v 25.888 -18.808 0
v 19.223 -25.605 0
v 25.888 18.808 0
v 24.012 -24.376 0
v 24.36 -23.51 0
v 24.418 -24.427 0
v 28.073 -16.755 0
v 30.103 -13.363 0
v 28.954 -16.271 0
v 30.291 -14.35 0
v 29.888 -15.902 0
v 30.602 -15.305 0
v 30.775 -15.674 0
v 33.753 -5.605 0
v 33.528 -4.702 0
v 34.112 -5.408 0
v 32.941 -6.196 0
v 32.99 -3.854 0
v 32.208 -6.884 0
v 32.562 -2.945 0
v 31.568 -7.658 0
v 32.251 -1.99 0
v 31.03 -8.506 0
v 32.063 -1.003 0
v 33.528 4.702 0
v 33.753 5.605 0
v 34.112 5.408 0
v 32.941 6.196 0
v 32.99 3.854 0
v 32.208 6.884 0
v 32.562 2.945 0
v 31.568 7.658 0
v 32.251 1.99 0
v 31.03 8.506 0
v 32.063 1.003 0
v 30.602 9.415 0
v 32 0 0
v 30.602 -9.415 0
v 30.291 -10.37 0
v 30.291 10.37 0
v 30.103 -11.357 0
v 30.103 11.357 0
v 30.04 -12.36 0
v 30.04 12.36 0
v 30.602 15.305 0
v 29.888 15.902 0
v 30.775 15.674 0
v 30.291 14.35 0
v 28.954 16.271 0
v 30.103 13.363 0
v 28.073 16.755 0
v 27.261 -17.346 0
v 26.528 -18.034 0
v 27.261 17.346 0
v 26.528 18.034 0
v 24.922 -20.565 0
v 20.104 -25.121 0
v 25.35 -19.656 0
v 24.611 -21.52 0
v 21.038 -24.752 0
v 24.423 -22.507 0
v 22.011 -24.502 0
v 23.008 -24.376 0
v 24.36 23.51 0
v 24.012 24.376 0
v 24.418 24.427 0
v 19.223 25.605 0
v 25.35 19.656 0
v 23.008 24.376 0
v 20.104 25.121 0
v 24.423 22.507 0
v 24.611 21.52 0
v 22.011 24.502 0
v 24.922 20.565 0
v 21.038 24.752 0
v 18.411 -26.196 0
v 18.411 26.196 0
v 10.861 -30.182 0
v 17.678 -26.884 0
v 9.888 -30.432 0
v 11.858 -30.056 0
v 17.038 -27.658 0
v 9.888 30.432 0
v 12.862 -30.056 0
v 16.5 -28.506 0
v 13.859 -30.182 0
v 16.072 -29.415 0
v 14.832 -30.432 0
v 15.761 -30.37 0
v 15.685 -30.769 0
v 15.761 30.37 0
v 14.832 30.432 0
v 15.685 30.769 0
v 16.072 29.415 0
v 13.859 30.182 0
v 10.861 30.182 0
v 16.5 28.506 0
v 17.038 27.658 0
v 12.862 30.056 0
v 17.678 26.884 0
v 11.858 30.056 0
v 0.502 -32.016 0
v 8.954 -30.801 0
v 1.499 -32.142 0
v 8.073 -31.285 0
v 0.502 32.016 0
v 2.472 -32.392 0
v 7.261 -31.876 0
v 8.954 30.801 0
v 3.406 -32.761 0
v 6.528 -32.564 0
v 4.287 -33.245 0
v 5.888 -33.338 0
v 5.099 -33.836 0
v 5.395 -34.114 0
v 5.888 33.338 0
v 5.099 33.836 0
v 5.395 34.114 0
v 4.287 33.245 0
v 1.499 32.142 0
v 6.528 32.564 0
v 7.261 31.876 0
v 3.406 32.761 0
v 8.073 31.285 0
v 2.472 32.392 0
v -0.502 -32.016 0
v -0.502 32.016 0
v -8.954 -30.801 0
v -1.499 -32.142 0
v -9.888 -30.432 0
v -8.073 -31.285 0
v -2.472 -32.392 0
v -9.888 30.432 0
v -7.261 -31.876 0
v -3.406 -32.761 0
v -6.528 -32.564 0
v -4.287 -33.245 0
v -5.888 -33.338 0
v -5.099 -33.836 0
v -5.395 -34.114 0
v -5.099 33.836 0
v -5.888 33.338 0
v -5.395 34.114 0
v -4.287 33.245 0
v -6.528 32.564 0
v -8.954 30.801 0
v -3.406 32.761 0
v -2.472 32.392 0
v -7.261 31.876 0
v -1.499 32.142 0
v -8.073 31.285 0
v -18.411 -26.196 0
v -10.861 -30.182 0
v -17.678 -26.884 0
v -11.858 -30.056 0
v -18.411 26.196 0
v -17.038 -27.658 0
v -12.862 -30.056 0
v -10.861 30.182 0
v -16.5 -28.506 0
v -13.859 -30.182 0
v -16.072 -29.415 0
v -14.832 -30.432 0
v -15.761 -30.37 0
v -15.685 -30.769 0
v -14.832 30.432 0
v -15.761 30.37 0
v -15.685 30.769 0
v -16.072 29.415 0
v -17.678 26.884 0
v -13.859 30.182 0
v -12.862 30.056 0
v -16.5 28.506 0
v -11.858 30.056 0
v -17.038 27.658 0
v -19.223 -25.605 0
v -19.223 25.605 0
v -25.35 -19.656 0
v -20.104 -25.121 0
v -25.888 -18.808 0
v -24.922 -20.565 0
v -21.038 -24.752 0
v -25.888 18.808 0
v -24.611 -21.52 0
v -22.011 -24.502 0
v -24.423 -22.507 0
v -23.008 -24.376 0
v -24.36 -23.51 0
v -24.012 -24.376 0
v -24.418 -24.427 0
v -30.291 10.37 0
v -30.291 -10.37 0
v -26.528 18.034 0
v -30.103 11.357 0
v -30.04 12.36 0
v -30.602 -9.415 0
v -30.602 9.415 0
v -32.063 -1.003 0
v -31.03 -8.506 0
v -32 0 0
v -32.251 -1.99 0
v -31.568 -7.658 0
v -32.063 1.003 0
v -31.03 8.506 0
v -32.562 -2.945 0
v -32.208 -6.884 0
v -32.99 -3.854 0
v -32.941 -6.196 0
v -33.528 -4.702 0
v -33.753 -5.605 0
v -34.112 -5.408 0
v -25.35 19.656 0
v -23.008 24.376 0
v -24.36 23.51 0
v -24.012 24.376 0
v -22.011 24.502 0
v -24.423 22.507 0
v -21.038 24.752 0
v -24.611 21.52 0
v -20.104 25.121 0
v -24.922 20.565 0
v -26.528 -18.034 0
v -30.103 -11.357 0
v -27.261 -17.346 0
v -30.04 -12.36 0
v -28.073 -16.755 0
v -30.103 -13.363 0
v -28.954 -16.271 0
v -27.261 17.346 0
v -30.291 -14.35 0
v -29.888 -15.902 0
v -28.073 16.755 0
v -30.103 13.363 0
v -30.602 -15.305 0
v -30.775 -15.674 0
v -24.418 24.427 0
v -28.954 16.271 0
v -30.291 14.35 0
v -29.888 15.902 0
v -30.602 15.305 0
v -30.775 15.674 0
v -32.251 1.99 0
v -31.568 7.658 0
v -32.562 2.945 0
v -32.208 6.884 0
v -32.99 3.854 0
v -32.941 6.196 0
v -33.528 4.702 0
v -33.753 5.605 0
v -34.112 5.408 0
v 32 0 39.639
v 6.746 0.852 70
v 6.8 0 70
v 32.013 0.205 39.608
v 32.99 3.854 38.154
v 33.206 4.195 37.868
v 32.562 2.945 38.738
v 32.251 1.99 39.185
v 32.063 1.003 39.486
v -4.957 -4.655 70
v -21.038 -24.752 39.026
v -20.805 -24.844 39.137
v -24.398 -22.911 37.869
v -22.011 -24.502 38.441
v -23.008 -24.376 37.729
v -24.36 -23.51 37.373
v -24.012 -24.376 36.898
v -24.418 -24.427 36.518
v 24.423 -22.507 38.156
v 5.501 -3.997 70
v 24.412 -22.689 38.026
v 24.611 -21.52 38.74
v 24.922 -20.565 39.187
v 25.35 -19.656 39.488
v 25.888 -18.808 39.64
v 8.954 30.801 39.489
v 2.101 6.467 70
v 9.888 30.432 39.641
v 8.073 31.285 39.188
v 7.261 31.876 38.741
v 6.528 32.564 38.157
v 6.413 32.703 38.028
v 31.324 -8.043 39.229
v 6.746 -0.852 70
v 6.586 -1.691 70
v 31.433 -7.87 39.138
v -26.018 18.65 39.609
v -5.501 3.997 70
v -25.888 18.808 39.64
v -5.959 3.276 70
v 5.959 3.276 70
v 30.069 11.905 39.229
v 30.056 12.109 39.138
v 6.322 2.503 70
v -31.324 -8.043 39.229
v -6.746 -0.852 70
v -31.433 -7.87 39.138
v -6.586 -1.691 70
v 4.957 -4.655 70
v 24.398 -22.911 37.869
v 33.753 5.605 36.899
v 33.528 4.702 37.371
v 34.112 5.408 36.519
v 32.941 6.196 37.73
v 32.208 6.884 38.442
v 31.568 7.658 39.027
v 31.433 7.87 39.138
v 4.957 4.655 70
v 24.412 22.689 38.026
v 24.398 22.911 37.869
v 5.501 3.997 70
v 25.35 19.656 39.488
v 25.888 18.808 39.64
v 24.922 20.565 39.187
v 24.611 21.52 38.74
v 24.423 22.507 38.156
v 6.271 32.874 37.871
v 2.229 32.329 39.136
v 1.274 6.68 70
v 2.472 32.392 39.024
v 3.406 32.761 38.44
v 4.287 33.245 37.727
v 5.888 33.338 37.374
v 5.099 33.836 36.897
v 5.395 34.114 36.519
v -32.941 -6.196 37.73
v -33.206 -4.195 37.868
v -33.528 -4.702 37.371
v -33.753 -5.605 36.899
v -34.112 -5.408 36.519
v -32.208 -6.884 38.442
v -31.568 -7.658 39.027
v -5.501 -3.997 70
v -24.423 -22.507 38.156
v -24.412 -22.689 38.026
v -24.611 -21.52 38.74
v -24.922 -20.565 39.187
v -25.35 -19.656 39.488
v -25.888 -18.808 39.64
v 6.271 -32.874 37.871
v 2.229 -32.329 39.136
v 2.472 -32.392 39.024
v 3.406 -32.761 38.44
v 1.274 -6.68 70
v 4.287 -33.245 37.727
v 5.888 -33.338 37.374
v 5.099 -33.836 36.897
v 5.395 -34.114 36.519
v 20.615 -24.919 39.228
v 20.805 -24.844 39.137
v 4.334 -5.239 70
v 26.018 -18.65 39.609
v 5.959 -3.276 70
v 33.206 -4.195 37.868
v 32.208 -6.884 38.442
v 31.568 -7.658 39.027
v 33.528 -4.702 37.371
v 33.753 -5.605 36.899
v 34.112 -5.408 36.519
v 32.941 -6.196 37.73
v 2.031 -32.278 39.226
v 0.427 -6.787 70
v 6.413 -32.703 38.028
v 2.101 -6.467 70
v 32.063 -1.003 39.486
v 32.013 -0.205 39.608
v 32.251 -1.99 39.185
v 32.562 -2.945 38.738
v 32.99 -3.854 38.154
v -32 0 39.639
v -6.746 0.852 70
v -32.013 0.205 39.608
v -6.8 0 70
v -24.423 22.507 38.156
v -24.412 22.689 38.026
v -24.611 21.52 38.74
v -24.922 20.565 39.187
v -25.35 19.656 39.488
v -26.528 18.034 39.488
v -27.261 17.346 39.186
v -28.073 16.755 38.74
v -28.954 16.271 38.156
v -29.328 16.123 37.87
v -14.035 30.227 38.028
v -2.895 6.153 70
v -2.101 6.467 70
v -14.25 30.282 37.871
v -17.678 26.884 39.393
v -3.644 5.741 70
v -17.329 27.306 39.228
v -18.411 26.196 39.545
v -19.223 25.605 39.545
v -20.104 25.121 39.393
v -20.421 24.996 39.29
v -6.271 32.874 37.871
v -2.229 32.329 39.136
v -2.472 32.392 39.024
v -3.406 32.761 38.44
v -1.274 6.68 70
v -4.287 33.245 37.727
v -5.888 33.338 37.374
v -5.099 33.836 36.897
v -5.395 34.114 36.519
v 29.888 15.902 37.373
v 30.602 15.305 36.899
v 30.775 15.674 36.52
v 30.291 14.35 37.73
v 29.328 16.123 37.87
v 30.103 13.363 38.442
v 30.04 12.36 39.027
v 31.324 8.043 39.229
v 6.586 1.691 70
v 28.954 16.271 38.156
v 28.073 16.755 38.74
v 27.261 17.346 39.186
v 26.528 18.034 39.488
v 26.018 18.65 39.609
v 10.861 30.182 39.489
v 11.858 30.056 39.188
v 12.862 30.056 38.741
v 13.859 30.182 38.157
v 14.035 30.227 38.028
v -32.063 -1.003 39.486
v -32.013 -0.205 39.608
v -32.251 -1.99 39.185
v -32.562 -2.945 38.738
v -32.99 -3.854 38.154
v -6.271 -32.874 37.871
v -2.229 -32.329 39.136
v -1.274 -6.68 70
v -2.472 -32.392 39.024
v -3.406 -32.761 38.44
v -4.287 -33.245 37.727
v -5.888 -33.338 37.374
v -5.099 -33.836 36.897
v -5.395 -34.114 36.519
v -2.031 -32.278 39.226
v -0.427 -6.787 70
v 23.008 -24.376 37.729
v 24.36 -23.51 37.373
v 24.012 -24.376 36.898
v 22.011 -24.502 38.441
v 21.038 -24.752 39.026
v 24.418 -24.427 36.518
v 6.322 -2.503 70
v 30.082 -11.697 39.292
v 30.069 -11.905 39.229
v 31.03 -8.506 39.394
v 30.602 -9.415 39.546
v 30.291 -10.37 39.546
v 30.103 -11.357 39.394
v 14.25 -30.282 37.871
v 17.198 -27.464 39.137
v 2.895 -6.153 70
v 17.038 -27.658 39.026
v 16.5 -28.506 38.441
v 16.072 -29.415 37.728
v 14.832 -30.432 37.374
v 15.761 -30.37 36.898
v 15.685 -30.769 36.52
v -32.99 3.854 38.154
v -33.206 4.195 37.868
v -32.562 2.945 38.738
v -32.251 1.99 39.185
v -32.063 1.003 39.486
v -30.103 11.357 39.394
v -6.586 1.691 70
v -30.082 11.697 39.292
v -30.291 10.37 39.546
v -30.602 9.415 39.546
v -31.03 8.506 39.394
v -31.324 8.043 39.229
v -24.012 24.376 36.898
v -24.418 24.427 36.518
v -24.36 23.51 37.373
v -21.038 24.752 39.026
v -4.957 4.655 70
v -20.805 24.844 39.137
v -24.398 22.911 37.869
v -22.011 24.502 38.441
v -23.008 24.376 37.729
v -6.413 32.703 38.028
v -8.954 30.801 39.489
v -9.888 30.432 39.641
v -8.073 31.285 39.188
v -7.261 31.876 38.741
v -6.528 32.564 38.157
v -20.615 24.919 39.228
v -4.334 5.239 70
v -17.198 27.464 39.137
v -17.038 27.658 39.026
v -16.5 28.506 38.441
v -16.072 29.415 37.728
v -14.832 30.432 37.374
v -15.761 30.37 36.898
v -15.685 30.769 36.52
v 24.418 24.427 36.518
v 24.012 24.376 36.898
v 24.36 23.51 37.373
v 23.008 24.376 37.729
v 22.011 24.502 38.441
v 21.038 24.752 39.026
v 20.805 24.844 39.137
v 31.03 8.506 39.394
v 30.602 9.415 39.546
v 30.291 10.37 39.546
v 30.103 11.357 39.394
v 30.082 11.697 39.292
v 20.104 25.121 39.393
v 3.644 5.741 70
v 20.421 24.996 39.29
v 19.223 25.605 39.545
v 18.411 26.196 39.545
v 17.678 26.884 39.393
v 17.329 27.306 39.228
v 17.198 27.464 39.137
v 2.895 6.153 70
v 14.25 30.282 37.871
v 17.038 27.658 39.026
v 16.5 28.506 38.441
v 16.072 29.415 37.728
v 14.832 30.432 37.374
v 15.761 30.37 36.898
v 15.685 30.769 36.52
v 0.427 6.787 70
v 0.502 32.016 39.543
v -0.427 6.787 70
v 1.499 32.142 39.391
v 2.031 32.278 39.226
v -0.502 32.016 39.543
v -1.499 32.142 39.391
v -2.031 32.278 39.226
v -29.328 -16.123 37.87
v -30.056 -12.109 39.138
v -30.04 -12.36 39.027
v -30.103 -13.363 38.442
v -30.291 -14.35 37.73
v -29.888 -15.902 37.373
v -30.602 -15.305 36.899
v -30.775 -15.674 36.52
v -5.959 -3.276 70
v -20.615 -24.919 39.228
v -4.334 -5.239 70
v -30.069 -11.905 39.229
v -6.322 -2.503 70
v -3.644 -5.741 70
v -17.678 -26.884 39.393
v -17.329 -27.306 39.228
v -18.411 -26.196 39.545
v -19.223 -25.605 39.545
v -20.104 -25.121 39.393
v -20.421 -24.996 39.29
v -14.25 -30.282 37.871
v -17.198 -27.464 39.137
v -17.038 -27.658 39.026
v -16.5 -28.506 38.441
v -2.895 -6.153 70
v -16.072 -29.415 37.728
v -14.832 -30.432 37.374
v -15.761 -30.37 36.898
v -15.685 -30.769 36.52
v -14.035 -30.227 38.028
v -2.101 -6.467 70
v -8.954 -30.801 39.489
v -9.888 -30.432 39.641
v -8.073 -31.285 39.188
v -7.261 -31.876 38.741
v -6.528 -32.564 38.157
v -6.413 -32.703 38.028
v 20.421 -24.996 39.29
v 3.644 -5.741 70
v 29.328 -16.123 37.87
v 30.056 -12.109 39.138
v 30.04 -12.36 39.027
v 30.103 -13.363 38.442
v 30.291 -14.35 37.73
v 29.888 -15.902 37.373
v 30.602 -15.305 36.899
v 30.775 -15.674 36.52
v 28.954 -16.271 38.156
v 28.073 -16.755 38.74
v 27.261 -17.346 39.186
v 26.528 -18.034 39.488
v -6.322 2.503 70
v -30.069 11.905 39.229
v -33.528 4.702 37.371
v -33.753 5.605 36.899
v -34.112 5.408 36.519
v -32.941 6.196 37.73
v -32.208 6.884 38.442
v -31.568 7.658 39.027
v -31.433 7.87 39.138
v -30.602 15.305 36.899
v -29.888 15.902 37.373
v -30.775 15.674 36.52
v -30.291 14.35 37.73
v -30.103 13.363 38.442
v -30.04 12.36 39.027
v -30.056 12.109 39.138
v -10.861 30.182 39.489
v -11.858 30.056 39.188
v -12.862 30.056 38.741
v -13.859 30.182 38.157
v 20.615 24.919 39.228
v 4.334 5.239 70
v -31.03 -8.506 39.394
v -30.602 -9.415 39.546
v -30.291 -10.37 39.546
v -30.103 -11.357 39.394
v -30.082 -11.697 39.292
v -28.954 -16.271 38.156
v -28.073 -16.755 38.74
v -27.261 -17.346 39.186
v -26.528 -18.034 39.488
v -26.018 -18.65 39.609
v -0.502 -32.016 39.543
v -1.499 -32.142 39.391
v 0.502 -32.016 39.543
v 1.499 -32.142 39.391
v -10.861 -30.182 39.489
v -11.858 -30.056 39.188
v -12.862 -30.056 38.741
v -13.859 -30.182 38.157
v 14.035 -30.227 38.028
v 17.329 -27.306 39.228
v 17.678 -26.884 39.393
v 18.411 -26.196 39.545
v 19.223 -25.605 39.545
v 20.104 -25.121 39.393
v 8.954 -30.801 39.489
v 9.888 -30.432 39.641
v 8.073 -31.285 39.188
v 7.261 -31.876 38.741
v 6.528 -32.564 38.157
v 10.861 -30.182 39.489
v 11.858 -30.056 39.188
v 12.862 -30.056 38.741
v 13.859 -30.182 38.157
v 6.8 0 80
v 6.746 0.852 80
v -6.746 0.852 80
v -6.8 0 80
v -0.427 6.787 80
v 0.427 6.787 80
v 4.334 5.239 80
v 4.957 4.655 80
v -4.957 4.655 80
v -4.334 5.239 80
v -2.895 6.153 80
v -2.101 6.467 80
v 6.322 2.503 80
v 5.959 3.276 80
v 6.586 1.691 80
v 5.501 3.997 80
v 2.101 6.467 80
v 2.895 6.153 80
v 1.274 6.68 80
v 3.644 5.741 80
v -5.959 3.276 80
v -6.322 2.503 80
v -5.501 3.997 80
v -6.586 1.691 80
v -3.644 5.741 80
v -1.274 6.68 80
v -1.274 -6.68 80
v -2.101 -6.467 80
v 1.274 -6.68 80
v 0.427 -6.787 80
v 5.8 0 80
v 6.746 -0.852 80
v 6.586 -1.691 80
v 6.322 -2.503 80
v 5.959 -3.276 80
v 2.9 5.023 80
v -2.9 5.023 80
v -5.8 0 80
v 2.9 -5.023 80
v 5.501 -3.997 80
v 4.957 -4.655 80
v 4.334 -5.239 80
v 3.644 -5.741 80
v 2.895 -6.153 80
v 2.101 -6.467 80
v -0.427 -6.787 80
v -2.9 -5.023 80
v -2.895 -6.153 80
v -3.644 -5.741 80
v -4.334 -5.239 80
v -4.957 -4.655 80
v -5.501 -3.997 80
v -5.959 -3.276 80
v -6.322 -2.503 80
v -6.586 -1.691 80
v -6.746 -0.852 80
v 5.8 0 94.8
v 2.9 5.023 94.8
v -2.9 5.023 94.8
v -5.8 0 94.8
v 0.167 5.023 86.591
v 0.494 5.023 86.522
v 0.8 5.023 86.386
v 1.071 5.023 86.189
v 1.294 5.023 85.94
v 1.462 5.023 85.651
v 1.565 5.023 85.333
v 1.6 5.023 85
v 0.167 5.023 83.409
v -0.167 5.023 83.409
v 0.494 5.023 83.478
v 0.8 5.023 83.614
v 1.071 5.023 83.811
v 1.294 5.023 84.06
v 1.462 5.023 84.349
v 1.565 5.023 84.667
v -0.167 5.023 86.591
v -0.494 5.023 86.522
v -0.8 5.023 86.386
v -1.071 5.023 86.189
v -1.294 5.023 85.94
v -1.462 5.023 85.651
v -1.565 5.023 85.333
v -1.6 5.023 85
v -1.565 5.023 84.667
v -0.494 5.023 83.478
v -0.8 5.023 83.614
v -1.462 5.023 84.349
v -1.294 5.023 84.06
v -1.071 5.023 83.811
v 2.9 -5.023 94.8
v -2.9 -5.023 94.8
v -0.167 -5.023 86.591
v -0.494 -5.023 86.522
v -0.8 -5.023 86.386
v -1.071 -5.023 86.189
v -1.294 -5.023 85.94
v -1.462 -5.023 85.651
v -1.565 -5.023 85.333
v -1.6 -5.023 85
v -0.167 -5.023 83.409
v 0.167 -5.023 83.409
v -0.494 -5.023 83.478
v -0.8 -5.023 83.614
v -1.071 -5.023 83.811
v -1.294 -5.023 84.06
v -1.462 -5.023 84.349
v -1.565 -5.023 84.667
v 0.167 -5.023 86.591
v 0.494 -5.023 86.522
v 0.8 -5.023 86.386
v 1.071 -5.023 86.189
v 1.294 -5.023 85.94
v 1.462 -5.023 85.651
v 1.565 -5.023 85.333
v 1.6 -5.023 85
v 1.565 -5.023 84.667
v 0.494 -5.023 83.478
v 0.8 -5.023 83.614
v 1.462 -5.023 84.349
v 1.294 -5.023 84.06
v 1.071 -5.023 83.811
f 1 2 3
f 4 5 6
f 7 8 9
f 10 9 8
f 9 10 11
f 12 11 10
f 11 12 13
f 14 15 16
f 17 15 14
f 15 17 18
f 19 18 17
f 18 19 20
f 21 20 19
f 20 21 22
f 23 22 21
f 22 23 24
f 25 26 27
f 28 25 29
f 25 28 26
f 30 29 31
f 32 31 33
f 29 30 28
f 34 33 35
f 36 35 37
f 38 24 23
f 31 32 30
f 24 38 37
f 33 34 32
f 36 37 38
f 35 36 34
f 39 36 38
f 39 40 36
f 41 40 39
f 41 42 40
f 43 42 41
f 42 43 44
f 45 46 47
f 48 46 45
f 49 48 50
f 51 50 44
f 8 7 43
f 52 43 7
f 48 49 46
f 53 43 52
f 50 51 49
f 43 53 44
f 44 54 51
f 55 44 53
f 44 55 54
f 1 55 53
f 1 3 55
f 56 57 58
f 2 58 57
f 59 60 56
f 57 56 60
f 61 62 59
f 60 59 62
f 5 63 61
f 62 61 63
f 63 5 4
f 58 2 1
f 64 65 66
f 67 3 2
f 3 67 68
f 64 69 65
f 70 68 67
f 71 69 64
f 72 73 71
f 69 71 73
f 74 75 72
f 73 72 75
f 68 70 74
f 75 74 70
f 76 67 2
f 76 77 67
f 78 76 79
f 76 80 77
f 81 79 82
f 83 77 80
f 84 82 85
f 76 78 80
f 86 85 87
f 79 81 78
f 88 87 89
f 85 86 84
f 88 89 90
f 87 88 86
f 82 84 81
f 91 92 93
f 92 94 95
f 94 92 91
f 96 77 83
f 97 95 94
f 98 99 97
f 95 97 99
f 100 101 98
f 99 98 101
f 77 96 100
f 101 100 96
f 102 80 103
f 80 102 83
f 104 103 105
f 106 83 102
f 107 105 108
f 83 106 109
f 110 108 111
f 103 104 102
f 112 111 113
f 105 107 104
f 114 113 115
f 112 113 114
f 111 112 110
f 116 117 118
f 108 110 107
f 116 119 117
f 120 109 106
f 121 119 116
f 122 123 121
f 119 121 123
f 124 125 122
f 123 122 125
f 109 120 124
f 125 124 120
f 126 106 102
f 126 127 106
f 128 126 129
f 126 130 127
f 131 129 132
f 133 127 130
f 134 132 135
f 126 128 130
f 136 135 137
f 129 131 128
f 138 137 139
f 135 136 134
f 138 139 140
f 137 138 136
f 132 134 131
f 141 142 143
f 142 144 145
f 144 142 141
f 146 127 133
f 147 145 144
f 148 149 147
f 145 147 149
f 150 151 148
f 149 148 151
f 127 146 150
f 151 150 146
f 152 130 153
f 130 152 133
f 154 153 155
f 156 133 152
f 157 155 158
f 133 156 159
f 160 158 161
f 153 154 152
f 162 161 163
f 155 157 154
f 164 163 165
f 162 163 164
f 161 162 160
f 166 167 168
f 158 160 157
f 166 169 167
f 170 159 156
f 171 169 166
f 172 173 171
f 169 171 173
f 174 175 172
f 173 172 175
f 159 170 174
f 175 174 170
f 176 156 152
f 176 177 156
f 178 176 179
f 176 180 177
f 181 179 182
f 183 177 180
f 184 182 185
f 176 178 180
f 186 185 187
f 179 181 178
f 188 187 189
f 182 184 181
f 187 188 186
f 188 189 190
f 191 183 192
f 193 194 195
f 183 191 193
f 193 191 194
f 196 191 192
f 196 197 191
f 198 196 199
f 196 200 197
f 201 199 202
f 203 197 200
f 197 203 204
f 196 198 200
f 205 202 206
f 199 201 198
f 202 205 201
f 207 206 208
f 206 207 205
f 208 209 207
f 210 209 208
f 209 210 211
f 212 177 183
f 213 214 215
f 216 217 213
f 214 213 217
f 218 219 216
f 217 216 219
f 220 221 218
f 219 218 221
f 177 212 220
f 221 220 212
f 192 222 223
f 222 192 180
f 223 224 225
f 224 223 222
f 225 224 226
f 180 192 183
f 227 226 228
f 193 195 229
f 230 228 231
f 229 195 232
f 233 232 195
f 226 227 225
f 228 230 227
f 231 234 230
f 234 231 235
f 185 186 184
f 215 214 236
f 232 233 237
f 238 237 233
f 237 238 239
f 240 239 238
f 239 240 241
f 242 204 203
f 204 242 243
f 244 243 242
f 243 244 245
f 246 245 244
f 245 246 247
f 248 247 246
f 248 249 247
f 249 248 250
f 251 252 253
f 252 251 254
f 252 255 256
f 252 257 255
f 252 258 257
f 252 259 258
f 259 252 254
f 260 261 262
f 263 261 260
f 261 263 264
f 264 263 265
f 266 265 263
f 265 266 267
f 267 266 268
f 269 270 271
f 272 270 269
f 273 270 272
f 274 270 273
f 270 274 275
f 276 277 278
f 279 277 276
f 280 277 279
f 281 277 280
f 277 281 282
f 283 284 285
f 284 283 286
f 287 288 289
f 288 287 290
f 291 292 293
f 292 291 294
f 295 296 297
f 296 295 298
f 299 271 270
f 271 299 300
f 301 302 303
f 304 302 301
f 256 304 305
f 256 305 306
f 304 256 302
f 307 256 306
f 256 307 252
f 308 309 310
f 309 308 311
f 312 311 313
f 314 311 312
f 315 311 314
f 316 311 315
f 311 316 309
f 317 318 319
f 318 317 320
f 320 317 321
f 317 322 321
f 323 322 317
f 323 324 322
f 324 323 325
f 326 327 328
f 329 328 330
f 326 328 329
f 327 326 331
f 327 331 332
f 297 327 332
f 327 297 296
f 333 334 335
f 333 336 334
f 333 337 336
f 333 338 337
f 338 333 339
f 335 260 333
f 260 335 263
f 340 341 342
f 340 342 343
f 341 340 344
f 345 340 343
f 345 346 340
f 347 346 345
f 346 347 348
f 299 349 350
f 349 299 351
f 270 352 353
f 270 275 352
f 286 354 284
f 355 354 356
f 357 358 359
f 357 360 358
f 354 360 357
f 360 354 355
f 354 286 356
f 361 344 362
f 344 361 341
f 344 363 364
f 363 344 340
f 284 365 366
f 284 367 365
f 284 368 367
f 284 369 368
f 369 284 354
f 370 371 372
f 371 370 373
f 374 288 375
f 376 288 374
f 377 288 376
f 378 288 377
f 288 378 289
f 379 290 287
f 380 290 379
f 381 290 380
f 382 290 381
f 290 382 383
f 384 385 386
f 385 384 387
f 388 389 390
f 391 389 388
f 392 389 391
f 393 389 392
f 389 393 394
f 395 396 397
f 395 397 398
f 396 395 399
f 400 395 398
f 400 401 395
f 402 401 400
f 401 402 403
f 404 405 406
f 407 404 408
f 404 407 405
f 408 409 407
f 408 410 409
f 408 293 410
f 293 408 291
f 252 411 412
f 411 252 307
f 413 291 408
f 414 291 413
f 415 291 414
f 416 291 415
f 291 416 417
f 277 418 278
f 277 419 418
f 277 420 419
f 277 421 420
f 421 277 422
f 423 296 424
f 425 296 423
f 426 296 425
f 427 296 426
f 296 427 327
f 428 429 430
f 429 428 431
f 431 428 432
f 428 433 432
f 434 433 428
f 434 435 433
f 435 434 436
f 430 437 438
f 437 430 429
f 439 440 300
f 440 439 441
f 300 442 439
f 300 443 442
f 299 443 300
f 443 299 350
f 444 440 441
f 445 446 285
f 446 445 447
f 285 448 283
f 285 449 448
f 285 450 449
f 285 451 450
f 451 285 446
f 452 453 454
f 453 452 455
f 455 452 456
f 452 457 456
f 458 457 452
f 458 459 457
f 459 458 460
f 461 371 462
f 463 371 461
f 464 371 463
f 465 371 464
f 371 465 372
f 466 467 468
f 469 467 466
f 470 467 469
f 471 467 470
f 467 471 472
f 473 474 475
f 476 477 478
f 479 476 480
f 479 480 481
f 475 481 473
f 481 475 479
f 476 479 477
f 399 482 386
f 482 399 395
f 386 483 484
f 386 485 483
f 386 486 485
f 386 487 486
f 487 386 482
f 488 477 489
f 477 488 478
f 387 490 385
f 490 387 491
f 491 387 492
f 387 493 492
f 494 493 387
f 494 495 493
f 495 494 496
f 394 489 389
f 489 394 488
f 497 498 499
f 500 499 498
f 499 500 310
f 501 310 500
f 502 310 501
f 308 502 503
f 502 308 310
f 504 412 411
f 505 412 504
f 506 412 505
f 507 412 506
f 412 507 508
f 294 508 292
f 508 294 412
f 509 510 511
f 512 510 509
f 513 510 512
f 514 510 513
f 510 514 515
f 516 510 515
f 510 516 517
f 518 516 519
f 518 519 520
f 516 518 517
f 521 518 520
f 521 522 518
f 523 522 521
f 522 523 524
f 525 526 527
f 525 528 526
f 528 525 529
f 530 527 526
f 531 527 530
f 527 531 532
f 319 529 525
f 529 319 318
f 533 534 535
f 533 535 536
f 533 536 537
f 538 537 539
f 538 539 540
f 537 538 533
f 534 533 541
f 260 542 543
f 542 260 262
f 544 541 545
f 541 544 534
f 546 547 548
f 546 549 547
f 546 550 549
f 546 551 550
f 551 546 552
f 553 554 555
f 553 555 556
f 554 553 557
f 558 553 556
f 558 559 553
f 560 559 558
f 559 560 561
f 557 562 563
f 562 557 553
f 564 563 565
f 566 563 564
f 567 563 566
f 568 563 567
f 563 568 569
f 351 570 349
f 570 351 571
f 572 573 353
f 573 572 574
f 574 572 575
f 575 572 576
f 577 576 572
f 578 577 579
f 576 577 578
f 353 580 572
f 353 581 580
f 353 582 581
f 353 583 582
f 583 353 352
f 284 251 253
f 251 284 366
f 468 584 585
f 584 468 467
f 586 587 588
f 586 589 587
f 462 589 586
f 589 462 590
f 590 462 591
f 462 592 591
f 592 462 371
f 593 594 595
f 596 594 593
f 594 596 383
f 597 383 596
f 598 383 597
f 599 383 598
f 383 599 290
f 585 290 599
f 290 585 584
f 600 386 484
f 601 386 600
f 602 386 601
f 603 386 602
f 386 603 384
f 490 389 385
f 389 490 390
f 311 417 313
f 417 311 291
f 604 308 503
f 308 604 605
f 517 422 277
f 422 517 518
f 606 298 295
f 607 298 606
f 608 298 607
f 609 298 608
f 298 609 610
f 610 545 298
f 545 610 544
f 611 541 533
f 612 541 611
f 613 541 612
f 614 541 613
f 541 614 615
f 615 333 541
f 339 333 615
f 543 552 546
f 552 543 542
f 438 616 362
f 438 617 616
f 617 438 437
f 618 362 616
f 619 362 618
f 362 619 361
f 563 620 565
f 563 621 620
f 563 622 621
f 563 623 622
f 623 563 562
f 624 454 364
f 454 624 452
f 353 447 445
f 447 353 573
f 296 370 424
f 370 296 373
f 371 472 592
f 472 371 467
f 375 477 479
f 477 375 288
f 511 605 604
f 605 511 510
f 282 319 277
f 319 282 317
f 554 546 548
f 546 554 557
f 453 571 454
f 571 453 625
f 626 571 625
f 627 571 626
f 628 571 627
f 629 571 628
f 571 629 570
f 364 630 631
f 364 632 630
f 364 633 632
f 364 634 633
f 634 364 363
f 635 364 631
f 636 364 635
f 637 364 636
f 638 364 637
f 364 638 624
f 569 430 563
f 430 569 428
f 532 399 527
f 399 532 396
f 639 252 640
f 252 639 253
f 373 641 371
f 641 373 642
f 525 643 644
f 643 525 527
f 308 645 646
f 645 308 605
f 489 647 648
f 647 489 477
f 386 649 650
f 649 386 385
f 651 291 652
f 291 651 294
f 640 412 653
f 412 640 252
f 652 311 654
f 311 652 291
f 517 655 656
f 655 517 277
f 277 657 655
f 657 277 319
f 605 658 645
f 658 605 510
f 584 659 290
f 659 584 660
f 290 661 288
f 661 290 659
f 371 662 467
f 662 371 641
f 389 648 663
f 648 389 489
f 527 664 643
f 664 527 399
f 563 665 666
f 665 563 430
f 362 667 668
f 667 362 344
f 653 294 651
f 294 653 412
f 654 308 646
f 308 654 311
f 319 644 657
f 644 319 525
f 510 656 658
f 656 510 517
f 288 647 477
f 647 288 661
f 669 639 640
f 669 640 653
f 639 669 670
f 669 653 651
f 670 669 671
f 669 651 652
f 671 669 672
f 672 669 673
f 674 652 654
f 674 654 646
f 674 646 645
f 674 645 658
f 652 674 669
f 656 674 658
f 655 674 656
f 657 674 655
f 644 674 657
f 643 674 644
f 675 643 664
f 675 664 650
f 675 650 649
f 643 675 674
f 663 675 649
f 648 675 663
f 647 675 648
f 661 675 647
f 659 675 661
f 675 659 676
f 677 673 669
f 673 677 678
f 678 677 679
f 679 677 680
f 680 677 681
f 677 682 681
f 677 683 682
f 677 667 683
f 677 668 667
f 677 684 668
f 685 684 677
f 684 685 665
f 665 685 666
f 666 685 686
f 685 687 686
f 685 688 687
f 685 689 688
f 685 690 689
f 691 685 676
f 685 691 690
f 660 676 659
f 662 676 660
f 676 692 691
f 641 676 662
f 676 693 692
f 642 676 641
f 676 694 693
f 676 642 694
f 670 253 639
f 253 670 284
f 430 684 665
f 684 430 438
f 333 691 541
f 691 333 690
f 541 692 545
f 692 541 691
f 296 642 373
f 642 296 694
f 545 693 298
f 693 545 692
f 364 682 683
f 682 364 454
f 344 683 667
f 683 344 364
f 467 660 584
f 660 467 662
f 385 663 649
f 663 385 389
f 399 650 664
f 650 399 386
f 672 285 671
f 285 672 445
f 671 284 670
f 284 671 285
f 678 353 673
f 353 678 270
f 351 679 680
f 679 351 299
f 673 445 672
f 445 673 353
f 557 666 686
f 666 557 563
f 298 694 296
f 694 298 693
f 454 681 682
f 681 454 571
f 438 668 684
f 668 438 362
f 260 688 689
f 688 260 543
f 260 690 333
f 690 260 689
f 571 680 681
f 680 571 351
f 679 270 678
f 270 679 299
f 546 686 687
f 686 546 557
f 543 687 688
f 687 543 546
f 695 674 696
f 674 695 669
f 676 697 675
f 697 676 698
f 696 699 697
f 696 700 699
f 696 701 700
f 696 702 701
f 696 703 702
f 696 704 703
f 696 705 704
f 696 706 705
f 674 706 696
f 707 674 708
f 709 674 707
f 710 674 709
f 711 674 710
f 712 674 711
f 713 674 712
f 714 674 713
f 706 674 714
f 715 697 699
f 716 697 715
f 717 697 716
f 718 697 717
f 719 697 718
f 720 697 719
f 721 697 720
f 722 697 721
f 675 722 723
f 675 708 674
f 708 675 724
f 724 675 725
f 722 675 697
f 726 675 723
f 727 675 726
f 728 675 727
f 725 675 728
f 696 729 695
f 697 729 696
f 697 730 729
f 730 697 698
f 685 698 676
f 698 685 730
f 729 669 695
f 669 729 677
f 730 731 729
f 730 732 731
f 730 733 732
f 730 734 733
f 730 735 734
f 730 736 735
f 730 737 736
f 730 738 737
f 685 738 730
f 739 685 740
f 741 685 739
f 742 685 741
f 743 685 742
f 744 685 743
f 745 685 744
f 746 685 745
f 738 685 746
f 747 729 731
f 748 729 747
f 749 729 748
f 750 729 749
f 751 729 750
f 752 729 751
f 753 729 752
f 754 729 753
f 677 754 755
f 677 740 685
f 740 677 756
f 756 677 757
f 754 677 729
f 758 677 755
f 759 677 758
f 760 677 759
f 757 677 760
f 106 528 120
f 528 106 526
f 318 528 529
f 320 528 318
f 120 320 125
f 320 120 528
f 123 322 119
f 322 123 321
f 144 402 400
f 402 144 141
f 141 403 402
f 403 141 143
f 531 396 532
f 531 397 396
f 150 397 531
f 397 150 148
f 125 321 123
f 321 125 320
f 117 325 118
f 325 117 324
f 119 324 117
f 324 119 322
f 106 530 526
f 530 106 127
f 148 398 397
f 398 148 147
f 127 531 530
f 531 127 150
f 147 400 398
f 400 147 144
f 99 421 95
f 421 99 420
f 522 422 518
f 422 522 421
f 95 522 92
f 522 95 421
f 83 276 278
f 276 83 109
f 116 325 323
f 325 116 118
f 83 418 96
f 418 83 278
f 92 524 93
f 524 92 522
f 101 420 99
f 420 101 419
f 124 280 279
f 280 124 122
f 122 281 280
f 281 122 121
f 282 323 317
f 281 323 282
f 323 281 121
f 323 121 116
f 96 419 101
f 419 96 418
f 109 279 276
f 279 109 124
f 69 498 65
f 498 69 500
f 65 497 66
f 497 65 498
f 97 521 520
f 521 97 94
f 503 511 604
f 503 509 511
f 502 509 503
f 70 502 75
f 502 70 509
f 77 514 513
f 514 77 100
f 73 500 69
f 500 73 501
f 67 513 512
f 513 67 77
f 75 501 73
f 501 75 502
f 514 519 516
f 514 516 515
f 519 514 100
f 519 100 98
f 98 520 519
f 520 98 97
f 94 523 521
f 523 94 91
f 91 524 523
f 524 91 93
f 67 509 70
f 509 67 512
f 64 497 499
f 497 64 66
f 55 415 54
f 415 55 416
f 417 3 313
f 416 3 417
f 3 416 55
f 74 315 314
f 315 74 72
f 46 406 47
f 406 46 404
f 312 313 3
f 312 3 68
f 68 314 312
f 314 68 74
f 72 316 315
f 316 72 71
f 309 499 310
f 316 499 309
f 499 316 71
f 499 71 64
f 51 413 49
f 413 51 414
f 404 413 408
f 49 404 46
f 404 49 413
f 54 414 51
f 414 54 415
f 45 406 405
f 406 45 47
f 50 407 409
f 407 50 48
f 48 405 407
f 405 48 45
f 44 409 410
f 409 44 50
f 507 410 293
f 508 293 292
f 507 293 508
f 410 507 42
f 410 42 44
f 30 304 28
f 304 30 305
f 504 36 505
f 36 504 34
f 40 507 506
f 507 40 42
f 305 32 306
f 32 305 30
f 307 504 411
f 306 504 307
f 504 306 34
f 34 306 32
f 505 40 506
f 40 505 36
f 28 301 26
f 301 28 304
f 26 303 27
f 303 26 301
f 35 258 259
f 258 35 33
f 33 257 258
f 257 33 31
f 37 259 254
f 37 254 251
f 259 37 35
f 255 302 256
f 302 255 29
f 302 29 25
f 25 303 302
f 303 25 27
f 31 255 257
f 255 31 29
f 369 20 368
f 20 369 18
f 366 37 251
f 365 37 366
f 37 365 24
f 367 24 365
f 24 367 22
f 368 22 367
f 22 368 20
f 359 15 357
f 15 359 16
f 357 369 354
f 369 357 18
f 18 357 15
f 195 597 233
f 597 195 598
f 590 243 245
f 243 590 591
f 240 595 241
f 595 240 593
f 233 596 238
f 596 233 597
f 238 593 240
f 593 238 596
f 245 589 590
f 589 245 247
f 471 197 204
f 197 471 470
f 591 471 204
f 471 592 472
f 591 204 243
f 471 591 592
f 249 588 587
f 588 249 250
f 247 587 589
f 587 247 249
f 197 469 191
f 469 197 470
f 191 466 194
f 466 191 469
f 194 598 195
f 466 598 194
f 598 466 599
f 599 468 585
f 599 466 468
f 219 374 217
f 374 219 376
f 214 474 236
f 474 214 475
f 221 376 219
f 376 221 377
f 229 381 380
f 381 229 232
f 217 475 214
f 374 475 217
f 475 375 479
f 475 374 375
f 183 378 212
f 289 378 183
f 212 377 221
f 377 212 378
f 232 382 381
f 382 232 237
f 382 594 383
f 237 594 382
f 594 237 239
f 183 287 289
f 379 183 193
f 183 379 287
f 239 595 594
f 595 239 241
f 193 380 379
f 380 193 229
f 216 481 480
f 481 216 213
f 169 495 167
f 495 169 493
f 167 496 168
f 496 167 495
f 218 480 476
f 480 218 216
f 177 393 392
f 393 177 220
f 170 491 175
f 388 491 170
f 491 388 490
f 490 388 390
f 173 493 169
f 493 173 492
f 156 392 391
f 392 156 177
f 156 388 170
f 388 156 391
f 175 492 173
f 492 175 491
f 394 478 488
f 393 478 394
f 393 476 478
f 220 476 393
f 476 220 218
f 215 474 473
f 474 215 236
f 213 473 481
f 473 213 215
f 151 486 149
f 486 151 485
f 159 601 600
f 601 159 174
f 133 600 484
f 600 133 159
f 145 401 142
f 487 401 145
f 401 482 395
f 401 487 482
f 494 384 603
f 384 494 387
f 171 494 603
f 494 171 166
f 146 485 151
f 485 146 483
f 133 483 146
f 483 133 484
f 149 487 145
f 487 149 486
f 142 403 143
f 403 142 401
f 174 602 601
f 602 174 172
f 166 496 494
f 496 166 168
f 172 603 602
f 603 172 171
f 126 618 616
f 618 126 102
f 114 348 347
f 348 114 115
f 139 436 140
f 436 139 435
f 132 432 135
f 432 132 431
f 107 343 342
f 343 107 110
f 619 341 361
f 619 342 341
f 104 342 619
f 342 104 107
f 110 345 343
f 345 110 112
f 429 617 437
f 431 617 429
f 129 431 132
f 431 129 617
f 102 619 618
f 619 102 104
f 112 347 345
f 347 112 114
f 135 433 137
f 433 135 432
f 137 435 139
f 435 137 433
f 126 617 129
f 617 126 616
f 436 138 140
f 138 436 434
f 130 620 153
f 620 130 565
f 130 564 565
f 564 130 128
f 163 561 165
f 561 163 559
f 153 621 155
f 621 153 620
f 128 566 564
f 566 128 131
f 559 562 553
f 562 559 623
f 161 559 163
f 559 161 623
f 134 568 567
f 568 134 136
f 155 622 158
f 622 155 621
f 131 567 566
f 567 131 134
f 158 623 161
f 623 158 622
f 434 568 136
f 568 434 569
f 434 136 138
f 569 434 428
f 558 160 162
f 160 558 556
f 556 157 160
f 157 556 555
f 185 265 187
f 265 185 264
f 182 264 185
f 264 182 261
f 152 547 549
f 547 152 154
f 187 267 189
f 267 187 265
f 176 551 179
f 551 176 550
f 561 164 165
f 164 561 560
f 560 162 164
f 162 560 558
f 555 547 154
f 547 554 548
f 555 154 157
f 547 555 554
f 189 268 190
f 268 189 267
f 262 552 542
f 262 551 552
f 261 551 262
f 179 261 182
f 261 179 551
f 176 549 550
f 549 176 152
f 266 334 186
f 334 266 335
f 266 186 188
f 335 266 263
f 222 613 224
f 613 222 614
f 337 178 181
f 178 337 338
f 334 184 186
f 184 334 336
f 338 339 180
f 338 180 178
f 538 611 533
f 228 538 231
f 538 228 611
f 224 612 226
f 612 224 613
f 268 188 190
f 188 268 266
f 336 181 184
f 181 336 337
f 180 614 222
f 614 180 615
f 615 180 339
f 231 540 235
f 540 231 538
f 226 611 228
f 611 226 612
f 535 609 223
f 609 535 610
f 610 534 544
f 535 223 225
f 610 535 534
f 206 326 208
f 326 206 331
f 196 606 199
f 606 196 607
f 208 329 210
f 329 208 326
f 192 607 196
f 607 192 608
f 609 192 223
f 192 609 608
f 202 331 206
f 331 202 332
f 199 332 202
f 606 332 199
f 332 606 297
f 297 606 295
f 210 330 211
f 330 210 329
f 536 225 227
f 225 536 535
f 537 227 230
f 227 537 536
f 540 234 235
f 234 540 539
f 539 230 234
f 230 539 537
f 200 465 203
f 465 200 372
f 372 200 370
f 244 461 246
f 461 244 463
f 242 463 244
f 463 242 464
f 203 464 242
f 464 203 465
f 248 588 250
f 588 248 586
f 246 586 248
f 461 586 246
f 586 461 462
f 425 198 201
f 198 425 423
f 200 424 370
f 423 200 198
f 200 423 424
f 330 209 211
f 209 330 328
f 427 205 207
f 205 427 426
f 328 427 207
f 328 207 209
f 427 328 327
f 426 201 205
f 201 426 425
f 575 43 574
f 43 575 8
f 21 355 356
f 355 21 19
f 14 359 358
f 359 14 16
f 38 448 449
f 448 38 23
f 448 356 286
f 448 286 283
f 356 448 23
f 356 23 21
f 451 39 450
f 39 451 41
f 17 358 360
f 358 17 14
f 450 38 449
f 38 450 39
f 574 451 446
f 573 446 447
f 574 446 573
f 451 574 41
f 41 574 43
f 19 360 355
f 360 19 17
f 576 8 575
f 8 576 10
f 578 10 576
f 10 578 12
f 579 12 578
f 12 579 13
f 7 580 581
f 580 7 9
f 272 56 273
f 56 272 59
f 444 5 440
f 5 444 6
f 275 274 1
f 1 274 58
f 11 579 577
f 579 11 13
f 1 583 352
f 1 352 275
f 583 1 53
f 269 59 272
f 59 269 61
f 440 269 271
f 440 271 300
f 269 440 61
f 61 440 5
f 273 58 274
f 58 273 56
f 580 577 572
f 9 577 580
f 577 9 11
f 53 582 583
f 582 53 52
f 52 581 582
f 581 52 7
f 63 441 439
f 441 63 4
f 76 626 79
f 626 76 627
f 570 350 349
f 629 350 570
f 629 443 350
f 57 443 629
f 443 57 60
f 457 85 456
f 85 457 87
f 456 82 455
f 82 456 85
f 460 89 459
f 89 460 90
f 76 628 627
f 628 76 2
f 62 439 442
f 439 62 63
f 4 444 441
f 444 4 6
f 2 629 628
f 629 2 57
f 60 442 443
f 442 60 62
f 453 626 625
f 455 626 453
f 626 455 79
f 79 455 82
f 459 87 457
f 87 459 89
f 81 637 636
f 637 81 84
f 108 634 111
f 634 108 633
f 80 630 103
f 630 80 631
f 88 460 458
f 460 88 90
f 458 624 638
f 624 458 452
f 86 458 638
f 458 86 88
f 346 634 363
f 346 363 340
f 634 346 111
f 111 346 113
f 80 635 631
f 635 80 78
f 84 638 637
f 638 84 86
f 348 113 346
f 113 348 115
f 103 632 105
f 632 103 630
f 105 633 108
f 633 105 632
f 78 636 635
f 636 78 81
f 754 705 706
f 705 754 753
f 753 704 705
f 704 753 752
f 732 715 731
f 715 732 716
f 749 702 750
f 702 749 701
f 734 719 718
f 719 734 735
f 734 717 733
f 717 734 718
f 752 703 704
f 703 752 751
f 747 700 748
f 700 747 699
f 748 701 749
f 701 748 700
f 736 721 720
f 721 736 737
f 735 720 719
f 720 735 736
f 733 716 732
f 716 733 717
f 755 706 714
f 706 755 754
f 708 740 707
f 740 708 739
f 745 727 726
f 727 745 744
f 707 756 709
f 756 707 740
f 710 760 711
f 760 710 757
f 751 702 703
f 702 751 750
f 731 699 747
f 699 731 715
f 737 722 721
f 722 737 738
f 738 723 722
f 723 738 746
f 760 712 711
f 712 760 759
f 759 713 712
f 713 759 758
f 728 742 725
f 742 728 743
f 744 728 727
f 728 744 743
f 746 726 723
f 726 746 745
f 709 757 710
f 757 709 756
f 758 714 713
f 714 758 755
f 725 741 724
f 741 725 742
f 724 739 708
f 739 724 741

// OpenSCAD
difference(){
  union(){
    cylinder(30, 40, 40, false, $fn=50);
    translate([0,0,30]) cylinder(40, 40, 6.8, false, $fn=50);
    translate([0,0,70]) cylinder(10, 6.8, 6.8, false, $fn=50);
    translate([0,0,80]) cylinder(14.8, 5.8, 5.8, false, $fn=6);
  }
  a=0;
  b=12.36;
  c=23.51;
  d=32.36;
  e=38.04;
  f=40;
  z=0;
  translate([ a,  f, z]) cylinder(50,8,8,false,$fn=50);
  translate([ b,  e, z]) cylinder(50,8,8,false,$fn=50);
  translate([ c,  d, z]) cylinder(50,8,8,false,$fn=50);
  translate([ d,  c, z]) cylinder(50,8,8,false,$fn=50);
  translate([ e,  b, z]) cylinder(50,8,8,false,$fn=50);
  translate([ f,  a, z]) cylinder(50,8,8,false,$fn=50);
  translate([-e,  b, z]) cylinder(50,8,8,false,$fn=50);
  translate([-d,  c, z]) cylinder(50,8,8,false,$fn=50);
  translate([-c,  d, z]) cylinder(50,8,8,false,$fn=50);
  translate([-b,  e, z]) cylinder(50,8,8,false,$fn=50);
  translate([-a, -f, z]) cylinder(50,8,8,false,$fn=50);
  translate([-b, -e, z]) cylinder(50,8,8,false,$fn=50);
  translate([-c, -d, z]) cylinder(50,8,8,false,$fn=50);
  translate([-d, -c, z]) cylinder(50,8,8,false,$fn=50);
  translate([-e, -b, z]) cylinder(50,8,8,false,$fn=50);
  translate([-f, -a, z]) cylinder(50,8,8,false,$fn=50);
  translate([ e, -b, z]) cylinder(50,8,8,false,$fn=50);
  translate([ d, -c, z]) cylinder(50,8,8,false,$fn=50);
  translate([ c, -d, z]) cylinder(50,8,8,false,$fn=50);
  translate([ b, -e, z]) cylinder(50,8,8,false,$fn=50);
  // Screw hole at top
  translate([0,10,85]) rotate([90,0,0]) cylinder(20,1.6,1.6,false,$fn=30);
}
